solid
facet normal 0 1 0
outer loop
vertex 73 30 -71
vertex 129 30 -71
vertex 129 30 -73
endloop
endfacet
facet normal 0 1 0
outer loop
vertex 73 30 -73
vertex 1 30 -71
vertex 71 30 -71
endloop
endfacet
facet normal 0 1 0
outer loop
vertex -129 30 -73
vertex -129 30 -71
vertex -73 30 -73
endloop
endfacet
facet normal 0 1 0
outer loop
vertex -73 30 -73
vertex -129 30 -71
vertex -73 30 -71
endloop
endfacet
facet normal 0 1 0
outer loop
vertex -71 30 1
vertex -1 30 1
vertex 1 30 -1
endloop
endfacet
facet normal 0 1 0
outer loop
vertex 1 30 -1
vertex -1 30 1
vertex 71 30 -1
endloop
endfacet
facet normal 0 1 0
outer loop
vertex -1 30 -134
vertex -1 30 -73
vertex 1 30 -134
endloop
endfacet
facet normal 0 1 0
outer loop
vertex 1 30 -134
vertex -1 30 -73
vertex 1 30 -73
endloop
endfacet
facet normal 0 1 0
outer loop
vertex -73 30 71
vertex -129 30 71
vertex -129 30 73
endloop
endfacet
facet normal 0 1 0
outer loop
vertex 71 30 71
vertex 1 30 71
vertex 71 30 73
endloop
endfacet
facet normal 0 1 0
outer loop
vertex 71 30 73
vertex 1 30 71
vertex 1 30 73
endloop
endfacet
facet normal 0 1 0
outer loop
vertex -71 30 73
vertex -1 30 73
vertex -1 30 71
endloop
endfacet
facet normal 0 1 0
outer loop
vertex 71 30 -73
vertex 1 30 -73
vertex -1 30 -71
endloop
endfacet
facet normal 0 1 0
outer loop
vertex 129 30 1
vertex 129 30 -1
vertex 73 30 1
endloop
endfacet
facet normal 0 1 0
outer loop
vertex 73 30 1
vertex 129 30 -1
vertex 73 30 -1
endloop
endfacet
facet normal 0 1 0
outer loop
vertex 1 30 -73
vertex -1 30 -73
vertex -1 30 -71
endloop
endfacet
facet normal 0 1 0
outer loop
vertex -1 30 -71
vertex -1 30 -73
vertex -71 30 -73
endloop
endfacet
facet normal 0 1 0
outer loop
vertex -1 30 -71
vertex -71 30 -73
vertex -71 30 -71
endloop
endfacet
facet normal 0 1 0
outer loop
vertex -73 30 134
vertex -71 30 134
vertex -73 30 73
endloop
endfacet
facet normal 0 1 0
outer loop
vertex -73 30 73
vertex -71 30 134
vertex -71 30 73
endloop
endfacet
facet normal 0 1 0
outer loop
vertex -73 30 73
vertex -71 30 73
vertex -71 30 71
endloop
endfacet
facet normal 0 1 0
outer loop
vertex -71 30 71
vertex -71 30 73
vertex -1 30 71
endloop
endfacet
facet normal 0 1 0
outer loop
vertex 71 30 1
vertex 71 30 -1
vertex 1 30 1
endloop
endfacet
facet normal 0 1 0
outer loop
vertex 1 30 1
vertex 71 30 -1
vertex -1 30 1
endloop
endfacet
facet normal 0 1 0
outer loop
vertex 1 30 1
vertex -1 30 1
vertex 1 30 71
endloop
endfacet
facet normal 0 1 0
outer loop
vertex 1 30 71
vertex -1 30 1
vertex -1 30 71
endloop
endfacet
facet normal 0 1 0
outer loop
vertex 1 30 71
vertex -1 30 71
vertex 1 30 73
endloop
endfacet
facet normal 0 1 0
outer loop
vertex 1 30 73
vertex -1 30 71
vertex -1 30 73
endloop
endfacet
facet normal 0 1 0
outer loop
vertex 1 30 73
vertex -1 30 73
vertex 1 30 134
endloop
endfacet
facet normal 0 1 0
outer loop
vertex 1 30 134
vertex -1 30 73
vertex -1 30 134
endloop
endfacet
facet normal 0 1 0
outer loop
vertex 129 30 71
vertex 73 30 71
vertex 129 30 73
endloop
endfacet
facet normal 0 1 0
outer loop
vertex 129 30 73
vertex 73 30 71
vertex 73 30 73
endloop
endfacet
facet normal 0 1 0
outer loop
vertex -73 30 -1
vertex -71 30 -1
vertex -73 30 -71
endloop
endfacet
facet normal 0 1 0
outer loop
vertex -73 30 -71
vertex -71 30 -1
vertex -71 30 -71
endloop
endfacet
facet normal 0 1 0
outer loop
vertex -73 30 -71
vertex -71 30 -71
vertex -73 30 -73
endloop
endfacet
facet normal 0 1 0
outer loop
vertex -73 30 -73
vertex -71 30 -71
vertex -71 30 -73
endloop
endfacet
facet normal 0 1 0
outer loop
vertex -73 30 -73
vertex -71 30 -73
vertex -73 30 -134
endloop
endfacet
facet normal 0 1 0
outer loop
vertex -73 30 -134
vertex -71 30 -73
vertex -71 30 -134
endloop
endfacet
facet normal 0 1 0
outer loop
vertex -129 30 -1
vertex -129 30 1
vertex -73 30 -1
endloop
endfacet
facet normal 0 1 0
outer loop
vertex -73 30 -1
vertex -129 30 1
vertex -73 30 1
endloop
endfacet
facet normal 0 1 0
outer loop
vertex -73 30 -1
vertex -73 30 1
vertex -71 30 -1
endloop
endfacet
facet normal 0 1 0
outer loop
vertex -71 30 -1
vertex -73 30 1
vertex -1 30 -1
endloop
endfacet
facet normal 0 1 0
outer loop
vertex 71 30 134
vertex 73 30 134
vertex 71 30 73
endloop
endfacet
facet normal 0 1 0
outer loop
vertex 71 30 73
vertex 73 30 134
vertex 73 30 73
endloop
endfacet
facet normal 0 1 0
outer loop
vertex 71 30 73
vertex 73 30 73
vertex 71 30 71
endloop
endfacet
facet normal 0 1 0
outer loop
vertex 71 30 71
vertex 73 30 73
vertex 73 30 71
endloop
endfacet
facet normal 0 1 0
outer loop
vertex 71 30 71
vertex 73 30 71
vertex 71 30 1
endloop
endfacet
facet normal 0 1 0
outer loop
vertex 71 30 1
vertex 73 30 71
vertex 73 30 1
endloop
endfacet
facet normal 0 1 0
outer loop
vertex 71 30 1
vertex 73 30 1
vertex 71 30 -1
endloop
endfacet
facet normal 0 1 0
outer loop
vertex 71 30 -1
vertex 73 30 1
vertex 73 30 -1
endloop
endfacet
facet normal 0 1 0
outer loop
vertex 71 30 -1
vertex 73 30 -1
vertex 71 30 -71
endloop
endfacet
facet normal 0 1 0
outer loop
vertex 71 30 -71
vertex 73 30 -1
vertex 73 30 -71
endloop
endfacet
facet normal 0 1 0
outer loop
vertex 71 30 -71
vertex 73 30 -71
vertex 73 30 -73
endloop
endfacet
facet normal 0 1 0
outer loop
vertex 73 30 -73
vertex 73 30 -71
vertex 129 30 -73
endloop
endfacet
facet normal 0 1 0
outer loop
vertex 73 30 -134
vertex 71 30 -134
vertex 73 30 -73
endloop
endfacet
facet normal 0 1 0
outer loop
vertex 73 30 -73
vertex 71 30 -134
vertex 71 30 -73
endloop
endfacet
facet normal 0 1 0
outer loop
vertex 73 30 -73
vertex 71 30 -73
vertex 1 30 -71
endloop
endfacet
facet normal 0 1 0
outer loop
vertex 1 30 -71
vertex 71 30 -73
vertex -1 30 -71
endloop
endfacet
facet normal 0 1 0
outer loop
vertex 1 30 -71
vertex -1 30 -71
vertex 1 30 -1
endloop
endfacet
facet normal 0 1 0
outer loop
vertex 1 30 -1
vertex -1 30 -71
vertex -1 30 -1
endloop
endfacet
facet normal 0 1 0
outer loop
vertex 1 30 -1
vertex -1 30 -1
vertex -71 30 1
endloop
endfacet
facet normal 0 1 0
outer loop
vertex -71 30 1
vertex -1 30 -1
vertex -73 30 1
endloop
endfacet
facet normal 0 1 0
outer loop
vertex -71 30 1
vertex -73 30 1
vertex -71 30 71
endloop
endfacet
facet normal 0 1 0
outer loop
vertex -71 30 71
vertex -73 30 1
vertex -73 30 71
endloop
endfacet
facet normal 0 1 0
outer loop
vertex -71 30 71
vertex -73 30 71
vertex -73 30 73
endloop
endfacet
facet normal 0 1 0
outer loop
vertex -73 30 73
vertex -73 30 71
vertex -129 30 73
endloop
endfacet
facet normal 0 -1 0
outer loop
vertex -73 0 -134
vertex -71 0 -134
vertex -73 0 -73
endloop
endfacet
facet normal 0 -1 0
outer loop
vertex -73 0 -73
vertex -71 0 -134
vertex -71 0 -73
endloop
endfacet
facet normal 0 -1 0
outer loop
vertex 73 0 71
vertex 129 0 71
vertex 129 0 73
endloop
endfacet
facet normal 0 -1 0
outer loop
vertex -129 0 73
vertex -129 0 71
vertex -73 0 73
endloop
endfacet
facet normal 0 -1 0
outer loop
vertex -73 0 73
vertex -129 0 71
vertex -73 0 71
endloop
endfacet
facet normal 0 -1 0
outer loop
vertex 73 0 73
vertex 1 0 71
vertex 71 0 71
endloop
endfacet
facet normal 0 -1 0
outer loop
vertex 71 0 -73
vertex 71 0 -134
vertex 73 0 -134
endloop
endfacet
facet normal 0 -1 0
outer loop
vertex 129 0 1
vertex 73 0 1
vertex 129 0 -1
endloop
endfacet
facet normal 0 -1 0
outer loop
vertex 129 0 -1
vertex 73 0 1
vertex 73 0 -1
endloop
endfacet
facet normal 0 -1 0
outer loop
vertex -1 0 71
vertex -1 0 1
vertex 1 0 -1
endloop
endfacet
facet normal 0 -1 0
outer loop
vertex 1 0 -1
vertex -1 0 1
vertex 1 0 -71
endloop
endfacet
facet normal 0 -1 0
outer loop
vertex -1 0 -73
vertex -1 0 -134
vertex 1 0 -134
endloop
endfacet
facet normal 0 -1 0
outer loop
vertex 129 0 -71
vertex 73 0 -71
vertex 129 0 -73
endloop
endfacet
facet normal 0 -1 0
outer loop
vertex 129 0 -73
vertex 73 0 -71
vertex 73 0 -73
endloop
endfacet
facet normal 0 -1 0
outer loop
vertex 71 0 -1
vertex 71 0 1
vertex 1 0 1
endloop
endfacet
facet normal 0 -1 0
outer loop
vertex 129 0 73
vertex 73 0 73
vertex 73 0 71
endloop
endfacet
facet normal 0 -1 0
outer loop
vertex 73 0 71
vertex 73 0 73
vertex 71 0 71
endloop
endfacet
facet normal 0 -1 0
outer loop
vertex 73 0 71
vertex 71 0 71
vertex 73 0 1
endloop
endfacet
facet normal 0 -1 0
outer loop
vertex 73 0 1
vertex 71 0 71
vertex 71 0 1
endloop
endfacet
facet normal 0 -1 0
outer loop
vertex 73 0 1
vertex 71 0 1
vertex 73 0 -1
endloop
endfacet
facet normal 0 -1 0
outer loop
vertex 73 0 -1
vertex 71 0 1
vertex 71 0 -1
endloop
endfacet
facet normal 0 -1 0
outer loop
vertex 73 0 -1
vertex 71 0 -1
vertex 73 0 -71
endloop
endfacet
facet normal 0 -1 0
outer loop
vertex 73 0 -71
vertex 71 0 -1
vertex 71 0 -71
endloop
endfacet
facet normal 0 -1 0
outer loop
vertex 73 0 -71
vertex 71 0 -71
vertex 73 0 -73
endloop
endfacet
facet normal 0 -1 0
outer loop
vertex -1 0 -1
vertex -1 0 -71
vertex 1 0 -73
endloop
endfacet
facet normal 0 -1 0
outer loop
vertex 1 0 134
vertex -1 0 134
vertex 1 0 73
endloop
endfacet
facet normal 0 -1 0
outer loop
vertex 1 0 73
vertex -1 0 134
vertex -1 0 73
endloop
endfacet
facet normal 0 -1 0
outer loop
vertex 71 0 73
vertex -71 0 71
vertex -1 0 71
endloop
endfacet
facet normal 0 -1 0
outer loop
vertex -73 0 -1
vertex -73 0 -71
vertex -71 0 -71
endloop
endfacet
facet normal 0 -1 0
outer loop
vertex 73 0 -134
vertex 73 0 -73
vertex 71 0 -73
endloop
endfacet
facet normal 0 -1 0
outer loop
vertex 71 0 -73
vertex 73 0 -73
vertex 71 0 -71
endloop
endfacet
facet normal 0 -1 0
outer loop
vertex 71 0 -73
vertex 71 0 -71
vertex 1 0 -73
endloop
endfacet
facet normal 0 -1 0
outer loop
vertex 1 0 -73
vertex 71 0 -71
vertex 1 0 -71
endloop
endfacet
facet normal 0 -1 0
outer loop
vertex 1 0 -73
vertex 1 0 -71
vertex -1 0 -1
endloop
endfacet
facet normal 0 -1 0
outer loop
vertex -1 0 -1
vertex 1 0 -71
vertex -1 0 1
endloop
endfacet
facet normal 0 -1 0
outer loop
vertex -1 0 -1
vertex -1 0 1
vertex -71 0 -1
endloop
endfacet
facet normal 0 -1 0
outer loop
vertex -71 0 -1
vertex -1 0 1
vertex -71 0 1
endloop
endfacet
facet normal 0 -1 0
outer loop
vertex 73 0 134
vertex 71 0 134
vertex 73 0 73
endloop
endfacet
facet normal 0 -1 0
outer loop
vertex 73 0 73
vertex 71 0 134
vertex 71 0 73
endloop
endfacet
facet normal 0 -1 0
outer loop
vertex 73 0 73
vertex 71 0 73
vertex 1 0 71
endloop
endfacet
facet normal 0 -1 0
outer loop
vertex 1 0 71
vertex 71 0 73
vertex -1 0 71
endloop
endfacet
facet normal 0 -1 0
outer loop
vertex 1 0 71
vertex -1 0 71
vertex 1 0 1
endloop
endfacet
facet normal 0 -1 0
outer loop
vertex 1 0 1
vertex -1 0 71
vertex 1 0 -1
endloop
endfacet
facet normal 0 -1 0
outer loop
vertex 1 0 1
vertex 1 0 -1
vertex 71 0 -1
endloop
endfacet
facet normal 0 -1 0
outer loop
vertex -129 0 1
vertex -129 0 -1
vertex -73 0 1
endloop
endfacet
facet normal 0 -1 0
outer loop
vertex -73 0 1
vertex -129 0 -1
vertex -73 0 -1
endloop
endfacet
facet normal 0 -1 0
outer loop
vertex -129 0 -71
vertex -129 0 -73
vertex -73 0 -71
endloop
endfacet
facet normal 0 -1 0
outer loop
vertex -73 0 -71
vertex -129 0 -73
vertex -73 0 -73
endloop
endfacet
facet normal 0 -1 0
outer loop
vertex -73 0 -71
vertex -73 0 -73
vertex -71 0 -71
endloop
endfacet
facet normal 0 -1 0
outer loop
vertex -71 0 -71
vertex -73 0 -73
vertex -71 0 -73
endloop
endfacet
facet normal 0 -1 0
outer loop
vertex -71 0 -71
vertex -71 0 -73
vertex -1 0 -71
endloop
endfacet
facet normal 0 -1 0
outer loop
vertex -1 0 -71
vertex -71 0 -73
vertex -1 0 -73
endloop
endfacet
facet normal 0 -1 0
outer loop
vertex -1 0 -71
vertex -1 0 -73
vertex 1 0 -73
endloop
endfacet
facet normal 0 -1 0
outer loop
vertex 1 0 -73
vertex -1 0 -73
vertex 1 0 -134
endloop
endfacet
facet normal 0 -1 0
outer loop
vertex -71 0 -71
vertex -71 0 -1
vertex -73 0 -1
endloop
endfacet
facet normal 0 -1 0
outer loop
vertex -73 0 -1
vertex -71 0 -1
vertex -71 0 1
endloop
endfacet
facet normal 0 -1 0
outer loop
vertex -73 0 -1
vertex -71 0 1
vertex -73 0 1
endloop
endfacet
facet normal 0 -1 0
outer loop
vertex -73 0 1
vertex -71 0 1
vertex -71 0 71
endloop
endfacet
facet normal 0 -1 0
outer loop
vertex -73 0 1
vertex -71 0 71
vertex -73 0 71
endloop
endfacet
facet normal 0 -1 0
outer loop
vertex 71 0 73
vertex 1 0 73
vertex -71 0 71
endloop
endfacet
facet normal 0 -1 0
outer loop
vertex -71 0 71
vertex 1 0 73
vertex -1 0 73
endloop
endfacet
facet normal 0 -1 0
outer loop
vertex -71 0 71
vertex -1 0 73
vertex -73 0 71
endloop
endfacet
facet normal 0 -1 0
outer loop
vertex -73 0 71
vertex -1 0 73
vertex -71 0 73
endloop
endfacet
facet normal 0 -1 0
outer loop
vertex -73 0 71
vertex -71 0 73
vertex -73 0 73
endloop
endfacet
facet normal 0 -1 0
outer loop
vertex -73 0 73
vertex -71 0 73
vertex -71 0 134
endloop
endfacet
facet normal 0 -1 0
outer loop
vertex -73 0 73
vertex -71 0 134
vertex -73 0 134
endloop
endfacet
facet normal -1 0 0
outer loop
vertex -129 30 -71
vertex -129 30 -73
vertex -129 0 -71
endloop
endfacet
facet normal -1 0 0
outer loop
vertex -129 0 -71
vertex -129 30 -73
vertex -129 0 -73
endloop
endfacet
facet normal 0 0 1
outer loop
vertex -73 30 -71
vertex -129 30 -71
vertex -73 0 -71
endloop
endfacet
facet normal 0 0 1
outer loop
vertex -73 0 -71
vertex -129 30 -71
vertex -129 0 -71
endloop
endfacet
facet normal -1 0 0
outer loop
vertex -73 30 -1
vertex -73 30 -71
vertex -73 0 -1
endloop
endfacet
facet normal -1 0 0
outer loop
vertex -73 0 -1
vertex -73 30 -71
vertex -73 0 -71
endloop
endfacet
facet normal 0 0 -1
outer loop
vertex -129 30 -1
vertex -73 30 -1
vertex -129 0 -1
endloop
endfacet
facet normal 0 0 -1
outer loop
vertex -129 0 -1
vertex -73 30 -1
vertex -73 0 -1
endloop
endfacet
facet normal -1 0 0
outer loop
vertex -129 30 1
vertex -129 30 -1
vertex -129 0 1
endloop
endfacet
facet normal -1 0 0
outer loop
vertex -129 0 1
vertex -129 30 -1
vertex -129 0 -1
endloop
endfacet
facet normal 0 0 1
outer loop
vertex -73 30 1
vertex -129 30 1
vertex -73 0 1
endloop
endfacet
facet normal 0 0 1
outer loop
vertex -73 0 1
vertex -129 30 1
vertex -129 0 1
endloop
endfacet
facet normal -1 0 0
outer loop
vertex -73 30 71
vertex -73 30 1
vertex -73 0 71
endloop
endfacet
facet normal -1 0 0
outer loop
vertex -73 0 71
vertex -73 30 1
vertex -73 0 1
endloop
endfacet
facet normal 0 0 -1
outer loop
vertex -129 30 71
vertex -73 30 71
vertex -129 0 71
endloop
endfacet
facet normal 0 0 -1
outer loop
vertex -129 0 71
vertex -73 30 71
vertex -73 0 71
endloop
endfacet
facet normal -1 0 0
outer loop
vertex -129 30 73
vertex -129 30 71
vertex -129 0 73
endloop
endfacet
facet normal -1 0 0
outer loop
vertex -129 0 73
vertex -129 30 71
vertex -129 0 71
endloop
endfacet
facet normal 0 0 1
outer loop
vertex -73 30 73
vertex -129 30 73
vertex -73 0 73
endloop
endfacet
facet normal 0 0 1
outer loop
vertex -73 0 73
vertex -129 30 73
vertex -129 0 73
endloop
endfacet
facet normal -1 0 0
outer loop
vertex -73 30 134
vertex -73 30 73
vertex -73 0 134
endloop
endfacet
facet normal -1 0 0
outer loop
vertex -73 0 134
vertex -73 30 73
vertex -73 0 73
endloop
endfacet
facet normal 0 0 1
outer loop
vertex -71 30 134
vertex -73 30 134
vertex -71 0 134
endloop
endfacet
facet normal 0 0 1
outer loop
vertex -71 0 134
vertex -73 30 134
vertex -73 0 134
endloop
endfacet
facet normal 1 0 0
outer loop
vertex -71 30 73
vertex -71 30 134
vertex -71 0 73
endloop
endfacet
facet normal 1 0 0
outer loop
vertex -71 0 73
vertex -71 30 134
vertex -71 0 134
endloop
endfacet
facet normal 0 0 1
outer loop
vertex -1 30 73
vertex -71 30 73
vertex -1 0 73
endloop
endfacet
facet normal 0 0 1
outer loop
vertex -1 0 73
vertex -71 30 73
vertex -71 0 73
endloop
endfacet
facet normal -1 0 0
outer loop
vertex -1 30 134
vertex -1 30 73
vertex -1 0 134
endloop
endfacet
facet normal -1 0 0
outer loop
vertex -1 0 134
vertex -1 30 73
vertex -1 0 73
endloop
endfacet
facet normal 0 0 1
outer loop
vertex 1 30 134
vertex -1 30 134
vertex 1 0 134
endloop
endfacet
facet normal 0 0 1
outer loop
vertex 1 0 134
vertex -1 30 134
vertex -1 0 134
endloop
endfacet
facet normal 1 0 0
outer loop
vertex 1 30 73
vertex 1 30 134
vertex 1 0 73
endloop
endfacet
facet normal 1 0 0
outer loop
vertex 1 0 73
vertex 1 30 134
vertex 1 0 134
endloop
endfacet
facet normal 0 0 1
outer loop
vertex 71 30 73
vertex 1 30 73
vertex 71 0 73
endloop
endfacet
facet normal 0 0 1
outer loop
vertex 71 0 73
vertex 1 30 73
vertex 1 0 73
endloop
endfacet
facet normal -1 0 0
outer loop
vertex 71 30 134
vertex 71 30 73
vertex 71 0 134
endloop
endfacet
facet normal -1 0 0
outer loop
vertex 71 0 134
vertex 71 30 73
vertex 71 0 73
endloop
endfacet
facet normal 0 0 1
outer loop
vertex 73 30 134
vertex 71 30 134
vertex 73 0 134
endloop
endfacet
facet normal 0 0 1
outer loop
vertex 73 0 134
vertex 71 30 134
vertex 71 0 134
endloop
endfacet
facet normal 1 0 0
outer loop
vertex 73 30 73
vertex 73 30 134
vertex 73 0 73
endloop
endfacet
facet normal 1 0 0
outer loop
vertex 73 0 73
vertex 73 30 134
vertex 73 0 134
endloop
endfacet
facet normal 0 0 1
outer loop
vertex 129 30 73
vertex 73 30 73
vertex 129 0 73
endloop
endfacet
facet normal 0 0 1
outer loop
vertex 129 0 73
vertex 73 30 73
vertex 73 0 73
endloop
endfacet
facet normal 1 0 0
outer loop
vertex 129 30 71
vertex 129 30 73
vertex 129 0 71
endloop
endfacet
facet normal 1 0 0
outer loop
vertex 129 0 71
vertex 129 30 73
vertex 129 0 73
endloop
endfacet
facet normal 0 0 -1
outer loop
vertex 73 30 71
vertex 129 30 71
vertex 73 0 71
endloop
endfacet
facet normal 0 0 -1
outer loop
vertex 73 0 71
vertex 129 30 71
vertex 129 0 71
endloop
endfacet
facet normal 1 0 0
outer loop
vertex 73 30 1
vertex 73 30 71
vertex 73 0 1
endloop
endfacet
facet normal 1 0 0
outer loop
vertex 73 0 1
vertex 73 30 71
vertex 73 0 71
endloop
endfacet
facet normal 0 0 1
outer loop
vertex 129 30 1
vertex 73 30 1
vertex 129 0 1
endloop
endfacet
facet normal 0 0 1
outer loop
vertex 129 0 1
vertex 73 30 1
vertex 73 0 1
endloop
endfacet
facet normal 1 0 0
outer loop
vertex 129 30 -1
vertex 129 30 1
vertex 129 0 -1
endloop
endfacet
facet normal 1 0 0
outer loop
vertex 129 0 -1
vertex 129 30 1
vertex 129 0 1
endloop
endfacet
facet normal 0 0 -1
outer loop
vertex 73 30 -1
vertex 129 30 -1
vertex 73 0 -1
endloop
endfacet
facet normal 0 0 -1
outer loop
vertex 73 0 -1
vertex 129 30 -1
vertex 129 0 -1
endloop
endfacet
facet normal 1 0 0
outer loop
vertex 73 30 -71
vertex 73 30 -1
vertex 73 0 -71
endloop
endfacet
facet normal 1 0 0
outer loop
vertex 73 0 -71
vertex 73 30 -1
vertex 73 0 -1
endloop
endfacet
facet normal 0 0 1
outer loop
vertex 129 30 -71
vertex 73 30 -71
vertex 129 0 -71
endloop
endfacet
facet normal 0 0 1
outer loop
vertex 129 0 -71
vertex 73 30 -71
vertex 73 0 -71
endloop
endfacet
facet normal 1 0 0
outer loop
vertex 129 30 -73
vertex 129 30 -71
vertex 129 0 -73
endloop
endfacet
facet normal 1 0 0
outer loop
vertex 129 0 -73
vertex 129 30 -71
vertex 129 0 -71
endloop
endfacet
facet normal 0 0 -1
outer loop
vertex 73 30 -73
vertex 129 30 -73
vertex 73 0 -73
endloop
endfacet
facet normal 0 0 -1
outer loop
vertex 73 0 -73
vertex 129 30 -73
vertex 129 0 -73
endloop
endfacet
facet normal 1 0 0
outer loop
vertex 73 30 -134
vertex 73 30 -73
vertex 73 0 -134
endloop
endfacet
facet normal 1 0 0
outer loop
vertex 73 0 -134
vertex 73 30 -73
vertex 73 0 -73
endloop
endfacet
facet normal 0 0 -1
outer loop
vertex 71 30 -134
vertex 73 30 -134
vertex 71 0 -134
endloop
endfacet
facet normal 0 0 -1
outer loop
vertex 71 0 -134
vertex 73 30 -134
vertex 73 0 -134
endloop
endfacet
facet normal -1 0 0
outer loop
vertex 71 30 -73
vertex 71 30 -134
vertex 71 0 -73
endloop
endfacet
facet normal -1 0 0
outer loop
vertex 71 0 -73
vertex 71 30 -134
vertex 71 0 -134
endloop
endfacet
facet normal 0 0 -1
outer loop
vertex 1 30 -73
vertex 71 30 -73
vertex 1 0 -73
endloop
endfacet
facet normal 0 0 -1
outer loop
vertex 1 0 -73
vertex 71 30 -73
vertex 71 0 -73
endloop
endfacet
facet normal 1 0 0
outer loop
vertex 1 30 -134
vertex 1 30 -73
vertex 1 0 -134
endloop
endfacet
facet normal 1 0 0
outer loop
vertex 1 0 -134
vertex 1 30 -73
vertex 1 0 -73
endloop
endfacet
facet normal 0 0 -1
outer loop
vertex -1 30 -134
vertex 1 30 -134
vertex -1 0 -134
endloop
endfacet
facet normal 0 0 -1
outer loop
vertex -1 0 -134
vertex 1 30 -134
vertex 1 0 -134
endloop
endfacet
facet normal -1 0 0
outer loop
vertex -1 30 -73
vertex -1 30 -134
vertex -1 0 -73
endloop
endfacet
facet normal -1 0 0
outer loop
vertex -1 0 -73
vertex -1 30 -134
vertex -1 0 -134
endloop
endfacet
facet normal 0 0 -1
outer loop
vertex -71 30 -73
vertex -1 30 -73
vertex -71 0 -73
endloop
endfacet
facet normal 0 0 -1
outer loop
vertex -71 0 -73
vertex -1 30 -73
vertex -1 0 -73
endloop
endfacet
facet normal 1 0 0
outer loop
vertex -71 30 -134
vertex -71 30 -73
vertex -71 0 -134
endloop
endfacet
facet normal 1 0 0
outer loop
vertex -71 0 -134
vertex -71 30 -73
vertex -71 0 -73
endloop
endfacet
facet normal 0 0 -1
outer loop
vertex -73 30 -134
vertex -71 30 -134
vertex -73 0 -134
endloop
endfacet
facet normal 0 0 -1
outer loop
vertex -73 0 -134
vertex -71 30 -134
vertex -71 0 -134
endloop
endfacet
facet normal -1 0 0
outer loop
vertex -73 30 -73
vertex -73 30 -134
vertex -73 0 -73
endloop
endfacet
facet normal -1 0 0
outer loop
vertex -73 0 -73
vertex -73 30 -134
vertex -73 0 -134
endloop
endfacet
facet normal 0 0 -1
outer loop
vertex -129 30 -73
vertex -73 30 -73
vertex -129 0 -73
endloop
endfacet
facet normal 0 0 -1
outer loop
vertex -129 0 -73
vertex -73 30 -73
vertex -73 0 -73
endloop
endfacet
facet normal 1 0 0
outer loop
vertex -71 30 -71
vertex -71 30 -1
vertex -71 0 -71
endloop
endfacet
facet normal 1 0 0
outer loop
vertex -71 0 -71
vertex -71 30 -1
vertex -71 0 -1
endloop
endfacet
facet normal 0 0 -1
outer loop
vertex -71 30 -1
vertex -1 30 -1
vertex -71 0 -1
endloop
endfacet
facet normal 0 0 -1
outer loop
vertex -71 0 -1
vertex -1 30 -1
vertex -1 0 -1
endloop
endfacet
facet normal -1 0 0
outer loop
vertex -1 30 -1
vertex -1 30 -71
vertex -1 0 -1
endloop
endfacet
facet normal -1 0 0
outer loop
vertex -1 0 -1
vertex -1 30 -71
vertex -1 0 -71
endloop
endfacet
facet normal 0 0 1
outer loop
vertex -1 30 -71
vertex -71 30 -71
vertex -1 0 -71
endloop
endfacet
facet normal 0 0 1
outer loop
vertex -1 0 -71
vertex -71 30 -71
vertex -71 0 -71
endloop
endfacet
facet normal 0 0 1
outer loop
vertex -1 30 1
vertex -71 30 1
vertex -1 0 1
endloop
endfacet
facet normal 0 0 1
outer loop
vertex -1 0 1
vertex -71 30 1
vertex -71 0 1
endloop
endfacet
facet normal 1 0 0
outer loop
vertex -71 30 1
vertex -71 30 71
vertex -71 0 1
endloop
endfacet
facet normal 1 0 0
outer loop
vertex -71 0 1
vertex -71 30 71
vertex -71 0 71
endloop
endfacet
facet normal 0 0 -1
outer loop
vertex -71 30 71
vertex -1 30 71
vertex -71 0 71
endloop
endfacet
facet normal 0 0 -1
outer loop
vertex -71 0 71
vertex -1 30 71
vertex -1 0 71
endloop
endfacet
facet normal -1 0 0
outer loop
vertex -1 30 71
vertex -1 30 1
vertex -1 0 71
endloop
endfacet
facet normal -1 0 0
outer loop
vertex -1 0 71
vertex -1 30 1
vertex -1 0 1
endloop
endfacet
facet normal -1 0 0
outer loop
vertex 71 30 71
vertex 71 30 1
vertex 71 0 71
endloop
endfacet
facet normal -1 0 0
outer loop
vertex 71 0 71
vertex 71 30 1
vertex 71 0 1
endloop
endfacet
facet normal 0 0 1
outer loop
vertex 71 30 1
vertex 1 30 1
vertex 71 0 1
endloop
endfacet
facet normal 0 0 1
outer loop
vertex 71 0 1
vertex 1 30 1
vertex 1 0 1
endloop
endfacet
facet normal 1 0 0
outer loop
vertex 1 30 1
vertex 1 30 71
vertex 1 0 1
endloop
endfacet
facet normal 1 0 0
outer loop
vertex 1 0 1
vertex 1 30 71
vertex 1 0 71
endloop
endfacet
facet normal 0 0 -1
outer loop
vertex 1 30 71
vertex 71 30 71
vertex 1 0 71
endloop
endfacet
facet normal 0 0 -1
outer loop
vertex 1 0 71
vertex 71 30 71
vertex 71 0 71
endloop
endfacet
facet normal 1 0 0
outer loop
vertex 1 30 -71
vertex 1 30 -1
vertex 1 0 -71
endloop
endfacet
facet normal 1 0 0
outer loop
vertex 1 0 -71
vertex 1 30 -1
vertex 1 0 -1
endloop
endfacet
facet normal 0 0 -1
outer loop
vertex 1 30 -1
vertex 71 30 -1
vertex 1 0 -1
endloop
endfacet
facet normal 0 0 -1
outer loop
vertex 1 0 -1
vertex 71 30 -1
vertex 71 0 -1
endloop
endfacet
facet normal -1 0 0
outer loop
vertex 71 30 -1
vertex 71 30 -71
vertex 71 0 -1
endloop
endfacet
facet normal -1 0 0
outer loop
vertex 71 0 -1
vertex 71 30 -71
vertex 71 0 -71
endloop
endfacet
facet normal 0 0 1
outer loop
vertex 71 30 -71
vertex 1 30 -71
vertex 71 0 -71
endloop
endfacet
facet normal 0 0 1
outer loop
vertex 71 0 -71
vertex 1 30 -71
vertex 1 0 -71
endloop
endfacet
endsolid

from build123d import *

# Parameters (mm, degrees)
SKETCH_1_W      = 70
SKETCH_1_H      = 70
EXTRUDE_2_DEPTH = 30


with BuildPart() as part:
    # 草图1 → 凸台-拉伸2 (new body)
    with BuildSketch(Plane(origin=(0, 0, 0), x_dir=(1, 0, 0), z_dir=(0, 1, 0))):
        Polygon((-71, 73), (-1, 73), (-1, 134), (1, 134), (1, 73), (71, 73), (71, 134), (73, 134), (73, 73), (129, 73), (129, 71), (73, 71), (73, 1), (129, 1), (129, -1), (73, -1), (73, -71), (129, -71), (129, -73), (73, -73), (73, -134), (71, -134), (71, -73), (1, -73), (1, -134), (-1, -134), (-1, -73), (-71, -73), (-71, -134), (-73, -134), (-73, -73), (-129, -73), (-129, -71), (-73, -71), (-73, -1), (-129, -1), (-129, 1), (-73, 1), (-73, 71), (-129, 71), (-129, 73), (-73, 73), (-73, 134), (-71, 134), align=None)
        with Locations((-36, 36)):
            Rectangle(SKETCH_1_W, SKETCH_1_H, mode=Mode.SUBTRACT)
        with Locations((-36, -36)):
            Rectangle(SKETCH_1_W, SKETCH_1_H, mode=Mode.SUBTRACT)
        with Locations((36, -36)):
            Rectangle(SKETCH_1_W, SKETCH_1_H, mode=Mode.SUBTRACT)
        with Locations((36, 36)):
            Rectangle(SKETCH_1_W, SKETCH_1_H, mode=Mode.SUBTRACT)
    extrude(amount=EXTRUDE_2_DEPTH)


solid = part.part
